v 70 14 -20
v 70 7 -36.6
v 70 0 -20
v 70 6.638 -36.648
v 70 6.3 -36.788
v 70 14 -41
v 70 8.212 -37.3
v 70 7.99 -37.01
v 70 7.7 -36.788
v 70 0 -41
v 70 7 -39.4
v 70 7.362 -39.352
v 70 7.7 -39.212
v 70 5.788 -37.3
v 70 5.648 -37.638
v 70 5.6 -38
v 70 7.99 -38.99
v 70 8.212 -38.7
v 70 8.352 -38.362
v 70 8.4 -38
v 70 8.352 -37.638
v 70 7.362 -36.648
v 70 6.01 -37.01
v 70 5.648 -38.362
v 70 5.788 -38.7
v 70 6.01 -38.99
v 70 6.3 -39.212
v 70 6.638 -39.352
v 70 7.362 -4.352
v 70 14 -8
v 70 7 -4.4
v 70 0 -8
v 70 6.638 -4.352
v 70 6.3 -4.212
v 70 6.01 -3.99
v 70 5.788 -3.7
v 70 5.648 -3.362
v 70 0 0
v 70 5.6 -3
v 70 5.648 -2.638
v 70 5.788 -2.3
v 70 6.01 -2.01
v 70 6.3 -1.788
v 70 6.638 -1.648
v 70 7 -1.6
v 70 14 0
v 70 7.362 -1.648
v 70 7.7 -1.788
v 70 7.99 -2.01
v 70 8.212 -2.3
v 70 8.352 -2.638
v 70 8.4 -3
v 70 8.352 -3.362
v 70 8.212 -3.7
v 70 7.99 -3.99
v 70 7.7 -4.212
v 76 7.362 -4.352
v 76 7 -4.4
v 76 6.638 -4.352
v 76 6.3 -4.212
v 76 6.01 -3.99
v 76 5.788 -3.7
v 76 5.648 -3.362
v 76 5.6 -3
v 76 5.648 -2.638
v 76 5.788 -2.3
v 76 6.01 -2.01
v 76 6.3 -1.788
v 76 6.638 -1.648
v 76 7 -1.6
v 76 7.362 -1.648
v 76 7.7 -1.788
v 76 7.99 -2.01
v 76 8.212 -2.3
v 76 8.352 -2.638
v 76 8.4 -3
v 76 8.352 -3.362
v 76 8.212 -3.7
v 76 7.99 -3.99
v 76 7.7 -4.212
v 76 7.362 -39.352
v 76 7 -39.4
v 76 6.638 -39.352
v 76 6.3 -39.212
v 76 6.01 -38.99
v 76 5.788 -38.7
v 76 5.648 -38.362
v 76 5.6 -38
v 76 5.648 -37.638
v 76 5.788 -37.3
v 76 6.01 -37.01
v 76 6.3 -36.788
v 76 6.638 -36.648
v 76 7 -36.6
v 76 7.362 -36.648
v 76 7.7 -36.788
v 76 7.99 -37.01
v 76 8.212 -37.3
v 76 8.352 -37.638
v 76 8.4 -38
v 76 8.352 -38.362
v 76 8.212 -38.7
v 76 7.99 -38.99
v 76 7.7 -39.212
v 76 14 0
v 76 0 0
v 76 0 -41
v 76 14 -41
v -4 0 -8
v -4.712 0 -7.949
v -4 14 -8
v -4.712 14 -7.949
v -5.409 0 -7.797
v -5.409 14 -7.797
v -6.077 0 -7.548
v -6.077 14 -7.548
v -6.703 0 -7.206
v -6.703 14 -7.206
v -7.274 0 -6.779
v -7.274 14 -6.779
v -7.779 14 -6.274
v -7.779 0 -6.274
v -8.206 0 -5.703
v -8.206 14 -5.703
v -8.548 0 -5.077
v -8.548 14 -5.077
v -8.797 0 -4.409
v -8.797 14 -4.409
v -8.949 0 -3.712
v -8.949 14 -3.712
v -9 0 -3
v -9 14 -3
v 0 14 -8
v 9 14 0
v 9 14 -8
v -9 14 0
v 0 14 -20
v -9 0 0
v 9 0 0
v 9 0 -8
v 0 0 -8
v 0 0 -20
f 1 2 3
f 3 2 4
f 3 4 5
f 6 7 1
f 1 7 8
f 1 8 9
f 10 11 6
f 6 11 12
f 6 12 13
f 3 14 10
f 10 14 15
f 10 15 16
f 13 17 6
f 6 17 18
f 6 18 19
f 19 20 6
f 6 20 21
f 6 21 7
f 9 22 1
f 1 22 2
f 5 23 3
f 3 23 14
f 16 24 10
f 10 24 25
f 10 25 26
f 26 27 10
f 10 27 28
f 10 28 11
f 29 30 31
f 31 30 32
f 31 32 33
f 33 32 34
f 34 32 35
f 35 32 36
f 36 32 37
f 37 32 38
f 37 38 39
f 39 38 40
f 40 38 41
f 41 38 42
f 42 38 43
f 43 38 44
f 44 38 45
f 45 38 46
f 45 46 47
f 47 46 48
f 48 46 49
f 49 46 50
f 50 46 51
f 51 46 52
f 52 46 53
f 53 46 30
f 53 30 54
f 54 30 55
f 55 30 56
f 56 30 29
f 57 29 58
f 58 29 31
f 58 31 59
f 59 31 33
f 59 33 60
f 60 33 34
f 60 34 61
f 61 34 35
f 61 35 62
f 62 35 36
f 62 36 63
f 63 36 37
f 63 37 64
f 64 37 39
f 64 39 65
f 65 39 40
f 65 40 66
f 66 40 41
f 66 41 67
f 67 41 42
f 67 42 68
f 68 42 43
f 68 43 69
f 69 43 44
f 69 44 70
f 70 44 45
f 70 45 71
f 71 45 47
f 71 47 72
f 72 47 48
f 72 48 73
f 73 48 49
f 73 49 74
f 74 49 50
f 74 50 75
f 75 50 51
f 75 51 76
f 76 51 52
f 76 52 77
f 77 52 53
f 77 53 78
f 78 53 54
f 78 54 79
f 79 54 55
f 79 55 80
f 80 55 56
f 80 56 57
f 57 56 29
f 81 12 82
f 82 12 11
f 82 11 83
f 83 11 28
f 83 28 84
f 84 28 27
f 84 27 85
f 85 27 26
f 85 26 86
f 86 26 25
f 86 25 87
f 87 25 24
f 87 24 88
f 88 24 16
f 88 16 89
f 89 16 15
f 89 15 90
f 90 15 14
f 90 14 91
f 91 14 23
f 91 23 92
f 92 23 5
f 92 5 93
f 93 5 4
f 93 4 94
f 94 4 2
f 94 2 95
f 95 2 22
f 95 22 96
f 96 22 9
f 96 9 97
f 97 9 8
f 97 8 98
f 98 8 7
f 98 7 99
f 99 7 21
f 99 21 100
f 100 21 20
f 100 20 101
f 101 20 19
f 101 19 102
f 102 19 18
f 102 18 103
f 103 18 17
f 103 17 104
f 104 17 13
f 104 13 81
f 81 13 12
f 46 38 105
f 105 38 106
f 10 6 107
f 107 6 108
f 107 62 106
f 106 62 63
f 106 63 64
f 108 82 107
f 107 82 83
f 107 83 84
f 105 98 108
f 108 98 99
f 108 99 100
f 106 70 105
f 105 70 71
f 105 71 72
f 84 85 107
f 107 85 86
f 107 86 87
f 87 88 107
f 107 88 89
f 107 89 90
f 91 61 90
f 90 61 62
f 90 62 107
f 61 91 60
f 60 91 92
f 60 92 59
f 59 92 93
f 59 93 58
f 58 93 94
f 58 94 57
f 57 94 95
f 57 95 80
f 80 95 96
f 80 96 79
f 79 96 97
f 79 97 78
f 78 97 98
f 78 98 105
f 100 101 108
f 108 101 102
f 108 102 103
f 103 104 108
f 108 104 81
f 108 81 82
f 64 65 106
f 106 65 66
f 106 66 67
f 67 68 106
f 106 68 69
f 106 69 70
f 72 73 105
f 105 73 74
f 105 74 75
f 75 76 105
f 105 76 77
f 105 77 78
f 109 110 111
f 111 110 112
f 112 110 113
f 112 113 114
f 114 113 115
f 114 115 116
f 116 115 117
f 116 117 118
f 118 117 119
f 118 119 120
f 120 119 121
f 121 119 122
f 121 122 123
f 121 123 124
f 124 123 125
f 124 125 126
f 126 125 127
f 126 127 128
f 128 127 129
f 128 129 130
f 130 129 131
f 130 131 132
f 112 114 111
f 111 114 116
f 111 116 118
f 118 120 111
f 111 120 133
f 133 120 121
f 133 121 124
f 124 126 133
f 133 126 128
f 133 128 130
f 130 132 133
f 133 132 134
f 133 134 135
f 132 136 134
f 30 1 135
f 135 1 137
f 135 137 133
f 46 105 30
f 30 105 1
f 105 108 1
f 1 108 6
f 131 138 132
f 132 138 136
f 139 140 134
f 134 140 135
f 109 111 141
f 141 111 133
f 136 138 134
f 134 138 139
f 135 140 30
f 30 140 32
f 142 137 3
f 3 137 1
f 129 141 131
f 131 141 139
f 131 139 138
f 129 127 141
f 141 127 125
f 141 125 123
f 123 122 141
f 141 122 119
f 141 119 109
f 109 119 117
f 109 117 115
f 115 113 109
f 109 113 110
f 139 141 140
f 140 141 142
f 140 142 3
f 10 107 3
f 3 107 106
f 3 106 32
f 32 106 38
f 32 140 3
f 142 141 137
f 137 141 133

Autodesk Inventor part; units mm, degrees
ref_plane "YZ Plane" through (0, 0, 0) normal (1, 0, 0) x (0, 1, 0)
ref_plane "XZ Plane" through (0, 0, 0) normal (0, 1, 0) x (-1, 0, 0)
ref_plane "XY Plane" through (0, 0, 0) normal (0, 0, 1) x (1, 0, 0)
sketch "Sketch1" plane through (0, 0, 0) normal (1, 0, 0) x (0, 1, 0)
  line L0 (0, 0) -> (14, 0)
  line L1 (14, 0) -> (14, -20)
  line L2 (14, -20) -> (0, -20)
  line L3 (0, -20) -> (0, 0)
  line L4 (14, -20) -> (0, -20)
  line L5 (0, -20) -> (0, -20)
  line L6 (0, -20) -> (14, -20)
  line L7 (14, -20) -> (14, -20)
  line L8 (0, 0) -> (0, -8)
  line L9 (0, -8) -> (14, -8)
  line L10 (14, -8) -> (14, 0)
  point P0 (14, -8)
  dimension "d12" = 14
  dimension "d13" = 20
  dimension "d14" = 12
  dimension "d15" = 0
extrude "Extrusion6" add sketch "Sketch1" along normal blind 70 contours L9 L1 L2 L3
extrude "Extrusion7" add sketch "Sketch1" against normal mid plane 18 contours L0 L1 L9 L3
fillet "Fillet1" radius 5 1 edges at (-9, 7, -8)
sketch "Sketch6" plane through (70, 0, 0) normal (1, 0, 0) x (0, 0, -1)
  line L0 (8, 14) -> (0, 14) projected
  line L1 (0, 14) -> (41, 14)
  line L2 (41, 14) -> (41, 0)
  line L3 (41, 0) -> (0, 0)
  line L4 (0, 0) -> (0, 14)
  circle A0 centre (38, 7) radius 1.4
  circle A1 centre (3, 7) radius 1.4
  line L5 (8, 14) -> (8, 0) projected
  dimension "d21" = 41
  dimension "d22" = 2.8
  dimension "d23" = 3
  dimension "d24" = 2.8
  dimension "d25" = 35
  dimension "d26" = 5
extrude "Extrusion8" add sketch "Sketch6" along normal blind 6
properties part number "_3DPrint"
